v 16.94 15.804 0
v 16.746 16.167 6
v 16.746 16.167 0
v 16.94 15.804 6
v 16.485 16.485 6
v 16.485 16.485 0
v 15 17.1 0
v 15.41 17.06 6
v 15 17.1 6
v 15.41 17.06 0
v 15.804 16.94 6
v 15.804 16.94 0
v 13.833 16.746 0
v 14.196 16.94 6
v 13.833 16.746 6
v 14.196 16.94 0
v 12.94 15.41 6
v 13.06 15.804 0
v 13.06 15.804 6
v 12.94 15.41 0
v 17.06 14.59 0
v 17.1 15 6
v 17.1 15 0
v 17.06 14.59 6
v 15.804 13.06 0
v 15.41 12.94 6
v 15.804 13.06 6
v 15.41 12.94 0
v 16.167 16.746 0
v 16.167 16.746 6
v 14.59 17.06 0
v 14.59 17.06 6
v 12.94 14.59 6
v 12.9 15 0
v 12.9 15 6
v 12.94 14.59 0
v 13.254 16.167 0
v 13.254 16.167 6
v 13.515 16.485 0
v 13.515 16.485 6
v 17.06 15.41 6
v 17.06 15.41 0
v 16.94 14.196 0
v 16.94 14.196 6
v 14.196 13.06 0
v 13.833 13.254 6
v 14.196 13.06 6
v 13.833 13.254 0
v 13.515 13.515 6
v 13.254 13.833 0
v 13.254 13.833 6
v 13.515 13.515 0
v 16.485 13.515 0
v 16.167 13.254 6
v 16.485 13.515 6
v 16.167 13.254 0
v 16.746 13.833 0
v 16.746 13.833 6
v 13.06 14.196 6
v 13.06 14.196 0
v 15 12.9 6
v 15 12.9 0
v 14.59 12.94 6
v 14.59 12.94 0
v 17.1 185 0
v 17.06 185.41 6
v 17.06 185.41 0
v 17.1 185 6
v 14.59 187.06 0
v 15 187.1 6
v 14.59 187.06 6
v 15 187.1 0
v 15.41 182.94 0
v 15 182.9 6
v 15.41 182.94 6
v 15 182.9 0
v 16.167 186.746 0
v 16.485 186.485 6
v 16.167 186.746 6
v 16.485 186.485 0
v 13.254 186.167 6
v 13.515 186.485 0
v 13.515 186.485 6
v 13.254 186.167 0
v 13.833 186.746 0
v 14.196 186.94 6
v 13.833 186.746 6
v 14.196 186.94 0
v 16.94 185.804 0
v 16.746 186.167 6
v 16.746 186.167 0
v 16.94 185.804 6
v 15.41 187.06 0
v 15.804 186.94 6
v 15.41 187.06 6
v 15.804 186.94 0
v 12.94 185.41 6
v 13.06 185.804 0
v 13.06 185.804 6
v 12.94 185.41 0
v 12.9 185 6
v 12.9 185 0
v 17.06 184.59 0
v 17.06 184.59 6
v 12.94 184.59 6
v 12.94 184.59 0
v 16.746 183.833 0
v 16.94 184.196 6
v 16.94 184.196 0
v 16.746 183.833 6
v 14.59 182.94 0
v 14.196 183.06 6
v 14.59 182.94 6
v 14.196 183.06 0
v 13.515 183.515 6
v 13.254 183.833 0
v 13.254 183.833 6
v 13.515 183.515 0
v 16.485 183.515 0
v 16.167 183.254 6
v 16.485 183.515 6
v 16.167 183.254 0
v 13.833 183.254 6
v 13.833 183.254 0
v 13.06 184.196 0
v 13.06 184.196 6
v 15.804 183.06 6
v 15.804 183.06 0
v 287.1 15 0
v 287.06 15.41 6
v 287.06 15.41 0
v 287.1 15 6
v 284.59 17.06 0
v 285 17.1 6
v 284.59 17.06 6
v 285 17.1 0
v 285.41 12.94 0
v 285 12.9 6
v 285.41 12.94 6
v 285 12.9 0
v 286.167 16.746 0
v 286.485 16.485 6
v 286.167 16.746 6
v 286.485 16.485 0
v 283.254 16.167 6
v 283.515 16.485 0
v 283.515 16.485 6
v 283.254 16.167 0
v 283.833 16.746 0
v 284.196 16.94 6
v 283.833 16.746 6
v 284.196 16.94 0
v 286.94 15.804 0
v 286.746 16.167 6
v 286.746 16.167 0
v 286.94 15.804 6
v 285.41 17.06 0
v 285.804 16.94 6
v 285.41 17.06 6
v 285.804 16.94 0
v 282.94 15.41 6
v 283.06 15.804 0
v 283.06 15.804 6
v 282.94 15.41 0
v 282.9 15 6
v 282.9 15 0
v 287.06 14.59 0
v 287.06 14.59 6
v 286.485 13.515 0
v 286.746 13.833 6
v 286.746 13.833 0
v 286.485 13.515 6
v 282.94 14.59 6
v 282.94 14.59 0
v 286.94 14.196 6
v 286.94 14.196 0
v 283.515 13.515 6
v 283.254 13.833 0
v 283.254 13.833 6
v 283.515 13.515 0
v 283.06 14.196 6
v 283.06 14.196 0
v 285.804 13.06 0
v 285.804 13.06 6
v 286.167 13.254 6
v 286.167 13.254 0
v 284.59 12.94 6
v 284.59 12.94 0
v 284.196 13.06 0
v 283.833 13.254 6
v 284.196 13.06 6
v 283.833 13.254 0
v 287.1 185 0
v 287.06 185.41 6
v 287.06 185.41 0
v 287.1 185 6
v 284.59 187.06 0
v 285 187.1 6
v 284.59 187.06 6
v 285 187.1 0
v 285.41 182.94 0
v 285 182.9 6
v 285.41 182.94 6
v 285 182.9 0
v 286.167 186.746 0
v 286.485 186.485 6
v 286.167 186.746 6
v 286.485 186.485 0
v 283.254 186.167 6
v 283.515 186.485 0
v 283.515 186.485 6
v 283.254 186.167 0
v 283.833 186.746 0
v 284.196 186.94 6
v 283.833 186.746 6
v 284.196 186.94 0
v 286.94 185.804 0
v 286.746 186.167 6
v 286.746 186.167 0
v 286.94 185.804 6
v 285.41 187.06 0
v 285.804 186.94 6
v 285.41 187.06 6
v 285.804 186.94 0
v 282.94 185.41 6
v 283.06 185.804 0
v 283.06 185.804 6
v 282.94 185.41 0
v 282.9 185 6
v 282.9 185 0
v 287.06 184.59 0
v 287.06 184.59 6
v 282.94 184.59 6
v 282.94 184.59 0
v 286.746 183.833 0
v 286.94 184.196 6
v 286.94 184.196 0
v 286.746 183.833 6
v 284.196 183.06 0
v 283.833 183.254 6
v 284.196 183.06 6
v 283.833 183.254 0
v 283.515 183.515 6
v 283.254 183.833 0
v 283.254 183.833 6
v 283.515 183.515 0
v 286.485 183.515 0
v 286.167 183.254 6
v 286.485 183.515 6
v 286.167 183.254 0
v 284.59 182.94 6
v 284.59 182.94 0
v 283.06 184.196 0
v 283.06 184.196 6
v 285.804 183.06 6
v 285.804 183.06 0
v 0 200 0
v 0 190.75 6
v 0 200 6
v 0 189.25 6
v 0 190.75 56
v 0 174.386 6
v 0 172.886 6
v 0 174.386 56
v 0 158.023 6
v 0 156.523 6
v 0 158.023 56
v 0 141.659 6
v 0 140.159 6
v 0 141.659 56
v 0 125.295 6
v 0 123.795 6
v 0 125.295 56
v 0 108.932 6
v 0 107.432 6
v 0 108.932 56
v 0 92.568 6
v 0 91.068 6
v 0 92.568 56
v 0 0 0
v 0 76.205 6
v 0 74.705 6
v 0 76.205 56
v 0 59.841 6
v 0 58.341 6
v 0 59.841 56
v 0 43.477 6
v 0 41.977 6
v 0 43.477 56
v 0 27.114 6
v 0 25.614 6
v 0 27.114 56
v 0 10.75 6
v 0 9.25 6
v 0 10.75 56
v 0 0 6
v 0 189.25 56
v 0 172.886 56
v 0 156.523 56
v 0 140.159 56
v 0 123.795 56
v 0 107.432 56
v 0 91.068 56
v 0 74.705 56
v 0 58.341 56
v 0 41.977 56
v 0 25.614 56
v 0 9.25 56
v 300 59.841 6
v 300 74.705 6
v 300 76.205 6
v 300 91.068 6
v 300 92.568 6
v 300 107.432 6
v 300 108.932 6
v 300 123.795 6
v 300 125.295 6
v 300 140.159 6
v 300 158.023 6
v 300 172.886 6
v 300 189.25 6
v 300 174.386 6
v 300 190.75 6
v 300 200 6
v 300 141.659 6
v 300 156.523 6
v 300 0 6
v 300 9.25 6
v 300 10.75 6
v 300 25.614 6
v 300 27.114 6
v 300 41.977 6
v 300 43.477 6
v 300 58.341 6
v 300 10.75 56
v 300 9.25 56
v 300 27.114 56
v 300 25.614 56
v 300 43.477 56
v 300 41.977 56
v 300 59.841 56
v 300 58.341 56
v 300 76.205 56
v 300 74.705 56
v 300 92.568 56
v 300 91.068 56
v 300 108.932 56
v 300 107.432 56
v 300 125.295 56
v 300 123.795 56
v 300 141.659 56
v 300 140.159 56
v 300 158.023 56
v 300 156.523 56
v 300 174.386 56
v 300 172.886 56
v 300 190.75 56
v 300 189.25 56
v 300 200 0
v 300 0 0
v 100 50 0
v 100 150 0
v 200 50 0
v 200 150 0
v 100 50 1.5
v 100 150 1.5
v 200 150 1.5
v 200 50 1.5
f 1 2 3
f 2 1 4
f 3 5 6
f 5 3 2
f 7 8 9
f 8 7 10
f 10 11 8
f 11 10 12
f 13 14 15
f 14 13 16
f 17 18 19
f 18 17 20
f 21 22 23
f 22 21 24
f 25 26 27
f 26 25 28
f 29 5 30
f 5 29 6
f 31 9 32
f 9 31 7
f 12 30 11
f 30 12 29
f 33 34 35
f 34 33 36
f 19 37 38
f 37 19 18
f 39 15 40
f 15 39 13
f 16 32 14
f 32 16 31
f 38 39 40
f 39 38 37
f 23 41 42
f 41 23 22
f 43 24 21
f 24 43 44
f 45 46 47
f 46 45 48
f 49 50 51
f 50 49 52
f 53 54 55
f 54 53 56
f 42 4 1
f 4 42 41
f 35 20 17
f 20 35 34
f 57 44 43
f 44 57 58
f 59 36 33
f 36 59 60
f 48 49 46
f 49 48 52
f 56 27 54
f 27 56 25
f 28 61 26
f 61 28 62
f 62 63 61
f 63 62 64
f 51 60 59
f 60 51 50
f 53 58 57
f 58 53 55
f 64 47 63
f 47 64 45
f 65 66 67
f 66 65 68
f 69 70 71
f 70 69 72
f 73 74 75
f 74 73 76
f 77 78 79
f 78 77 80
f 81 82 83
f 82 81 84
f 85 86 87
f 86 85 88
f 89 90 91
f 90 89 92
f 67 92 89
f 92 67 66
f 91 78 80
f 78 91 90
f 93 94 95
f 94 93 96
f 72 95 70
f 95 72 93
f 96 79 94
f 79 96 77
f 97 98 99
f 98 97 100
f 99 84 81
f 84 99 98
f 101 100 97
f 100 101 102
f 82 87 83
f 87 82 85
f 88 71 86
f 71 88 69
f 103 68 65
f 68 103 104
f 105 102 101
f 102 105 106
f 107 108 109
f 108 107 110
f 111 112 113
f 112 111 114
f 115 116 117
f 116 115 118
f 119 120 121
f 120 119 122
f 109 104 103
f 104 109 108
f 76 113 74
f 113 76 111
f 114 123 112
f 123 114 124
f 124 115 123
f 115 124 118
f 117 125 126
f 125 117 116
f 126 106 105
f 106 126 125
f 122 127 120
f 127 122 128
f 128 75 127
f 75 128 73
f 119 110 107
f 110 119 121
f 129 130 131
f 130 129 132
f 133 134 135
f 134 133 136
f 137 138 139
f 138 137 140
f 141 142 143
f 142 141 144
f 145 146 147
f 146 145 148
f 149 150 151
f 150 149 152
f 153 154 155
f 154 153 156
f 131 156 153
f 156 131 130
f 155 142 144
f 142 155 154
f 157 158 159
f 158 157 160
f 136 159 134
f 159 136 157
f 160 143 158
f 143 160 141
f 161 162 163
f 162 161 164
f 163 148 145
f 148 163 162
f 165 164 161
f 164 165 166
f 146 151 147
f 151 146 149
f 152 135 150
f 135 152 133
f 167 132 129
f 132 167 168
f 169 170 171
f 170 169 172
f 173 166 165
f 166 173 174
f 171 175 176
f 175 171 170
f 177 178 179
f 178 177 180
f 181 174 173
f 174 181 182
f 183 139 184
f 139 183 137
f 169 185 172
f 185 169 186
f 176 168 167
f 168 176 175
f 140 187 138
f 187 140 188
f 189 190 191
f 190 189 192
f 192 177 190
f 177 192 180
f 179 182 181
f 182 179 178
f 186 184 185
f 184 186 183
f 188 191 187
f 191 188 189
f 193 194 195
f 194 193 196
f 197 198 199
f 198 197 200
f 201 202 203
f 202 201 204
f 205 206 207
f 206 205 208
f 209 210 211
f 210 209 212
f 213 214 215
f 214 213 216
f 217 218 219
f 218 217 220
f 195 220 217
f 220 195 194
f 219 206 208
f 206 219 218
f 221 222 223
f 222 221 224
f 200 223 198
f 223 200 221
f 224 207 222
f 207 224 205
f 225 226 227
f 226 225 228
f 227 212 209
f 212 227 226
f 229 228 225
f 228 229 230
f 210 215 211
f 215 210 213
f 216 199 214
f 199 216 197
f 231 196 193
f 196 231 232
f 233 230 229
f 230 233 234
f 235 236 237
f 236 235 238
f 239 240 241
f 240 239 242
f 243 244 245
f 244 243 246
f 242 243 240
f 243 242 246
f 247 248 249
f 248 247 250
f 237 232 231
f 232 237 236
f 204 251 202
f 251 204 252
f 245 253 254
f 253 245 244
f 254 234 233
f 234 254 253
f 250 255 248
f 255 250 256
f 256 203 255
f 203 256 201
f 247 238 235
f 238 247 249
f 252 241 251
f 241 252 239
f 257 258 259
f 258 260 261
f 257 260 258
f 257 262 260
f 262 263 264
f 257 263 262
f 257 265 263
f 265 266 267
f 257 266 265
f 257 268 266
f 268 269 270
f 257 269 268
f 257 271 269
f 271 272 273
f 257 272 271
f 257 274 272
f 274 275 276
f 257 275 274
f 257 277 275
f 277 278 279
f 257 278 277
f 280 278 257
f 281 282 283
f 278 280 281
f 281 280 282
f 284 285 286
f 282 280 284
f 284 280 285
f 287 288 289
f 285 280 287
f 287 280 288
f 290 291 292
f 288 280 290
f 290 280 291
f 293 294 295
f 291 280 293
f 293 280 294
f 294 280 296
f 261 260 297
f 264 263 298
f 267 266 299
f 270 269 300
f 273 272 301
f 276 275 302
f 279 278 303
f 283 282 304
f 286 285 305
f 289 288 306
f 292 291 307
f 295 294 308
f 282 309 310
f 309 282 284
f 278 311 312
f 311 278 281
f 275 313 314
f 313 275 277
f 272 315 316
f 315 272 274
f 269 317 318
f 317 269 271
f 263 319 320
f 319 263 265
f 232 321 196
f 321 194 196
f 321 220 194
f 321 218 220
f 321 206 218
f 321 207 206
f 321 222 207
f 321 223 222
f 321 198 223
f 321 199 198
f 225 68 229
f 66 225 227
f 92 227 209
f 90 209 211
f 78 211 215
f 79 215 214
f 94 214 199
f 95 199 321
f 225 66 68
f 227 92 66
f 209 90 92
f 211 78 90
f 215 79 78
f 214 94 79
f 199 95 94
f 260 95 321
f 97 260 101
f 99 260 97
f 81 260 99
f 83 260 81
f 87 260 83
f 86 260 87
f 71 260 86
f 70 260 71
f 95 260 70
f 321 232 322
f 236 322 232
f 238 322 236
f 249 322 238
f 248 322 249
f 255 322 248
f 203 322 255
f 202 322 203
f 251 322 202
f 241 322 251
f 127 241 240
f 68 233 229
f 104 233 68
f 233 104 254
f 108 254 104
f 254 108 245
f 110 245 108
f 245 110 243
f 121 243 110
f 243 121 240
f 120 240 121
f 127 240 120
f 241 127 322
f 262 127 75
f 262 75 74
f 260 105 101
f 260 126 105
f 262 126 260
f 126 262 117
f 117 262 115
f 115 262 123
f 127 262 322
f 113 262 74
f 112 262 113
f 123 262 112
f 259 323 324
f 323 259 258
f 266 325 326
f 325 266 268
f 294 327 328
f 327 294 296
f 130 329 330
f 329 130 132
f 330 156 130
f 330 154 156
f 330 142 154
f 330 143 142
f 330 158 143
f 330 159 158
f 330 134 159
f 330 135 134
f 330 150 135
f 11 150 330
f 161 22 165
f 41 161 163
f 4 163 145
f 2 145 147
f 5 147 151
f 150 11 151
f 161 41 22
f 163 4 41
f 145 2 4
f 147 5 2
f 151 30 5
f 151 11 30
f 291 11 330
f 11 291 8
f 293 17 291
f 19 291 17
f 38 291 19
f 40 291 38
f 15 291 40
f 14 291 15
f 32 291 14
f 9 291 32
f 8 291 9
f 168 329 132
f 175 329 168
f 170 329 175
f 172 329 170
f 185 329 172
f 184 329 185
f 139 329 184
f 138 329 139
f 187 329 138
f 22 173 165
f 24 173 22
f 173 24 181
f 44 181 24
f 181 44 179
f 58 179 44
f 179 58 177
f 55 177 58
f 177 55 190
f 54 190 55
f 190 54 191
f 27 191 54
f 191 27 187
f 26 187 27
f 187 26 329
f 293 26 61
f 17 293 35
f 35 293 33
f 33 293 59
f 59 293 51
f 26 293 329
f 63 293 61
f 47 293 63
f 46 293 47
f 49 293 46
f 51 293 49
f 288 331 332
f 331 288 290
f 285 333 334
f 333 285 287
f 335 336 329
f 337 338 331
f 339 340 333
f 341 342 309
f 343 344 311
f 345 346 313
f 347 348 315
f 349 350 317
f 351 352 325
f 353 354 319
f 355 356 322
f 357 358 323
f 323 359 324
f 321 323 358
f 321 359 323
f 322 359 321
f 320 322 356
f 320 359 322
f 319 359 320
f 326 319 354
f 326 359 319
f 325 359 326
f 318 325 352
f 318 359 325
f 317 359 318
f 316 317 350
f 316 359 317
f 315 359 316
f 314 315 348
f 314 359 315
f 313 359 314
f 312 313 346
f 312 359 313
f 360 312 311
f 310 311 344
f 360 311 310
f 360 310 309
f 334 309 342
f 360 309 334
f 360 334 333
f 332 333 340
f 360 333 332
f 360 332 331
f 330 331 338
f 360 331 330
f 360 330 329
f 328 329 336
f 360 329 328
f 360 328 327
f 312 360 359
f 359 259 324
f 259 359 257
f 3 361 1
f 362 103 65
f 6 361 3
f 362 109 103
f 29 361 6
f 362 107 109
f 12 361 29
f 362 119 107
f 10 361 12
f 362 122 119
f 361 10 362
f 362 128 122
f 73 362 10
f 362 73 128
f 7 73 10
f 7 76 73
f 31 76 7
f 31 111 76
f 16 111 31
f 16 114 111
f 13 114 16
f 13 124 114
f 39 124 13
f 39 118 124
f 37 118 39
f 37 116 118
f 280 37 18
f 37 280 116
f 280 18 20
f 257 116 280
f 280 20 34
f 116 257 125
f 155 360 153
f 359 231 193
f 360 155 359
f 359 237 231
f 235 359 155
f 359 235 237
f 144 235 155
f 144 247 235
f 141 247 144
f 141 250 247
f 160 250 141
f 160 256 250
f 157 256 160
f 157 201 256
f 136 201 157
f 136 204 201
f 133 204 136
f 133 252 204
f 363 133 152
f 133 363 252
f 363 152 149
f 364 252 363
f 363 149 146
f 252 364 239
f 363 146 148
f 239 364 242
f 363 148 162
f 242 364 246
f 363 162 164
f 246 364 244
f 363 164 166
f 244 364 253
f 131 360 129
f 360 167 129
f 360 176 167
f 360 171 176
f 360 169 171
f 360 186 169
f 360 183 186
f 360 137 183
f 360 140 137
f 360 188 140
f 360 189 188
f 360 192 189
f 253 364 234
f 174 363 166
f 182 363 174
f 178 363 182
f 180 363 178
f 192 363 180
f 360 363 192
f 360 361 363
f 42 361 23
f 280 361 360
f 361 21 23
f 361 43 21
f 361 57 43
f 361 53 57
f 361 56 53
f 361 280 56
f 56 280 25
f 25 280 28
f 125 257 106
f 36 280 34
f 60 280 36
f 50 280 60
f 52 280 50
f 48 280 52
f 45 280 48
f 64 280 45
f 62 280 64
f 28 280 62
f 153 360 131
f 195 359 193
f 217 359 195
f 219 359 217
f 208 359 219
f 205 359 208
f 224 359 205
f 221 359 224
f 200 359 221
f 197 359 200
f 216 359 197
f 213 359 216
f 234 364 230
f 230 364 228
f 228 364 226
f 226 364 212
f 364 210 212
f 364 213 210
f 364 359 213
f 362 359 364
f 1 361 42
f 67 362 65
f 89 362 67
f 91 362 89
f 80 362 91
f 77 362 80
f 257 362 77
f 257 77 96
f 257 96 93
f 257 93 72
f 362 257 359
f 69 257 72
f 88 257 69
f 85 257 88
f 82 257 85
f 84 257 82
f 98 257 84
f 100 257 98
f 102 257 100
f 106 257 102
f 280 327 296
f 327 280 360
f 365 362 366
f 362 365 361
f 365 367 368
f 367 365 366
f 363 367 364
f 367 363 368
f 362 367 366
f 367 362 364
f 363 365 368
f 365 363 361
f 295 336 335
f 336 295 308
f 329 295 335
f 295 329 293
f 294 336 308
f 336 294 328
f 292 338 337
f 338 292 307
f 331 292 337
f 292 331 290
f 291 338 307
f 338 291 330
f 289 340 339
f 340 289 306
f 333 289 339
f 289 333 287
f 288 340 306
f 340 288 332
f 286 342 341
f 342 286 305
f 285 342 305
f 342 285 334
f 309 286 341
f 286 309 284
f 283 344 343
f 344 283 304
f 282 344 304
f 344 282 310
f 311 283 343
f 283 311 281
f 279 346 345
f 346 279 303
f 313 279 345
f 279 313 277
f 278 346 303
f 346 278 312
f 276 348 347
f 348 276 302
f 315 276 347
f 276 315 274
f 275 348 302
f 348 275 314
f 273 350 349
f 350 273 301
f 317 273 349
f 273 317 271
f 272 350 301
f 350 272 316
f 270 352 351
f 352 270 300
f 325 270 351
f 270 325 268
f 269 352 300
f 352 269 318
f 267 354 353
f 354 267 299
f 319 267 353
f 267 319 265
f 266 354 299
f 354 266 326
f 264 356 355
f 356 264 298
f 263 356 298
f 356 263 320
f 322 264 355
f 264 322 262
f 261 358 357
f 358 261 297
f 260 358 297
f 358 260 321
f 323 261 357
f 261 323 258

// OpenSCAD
// Wing Data Center — Tabletop Open-Cooling Prototype
// Units: millimeters
// Build: aluminum base + plate fins (sheet or extrusion)
// Compare against a flat plate of the same footprint.

/* ===================== PARAMETERS ===================== */
base_l = 300;        // length along intended wind direction
base_w = 200;        // width
base_t = 6;          // base plate thickness

fin_count = 12;      // number of fins
fin_h = 50;          // fin height above base top
fin_t = 1.5;         // fin thickness
fin_tip_gap = 2;     // small clearance if using a top rail (optional)

// Heater pocket (underside) — for a 100x100 silicone heater pad
heater_size = 100;
heater_recess = 1.5;

// Mount holes (M4)
hole_d = 4.2;
hole_margin = 15;

/* ===================== DERIVED ===================== */
fin_span = base_w - 20;                 // fins inset 10 mm from each side
channel_pitch = fin_span / (fin_count - 1);
fin_start_y = (base_w - fin_span) / 2;

echo("Footprint mm:", base_l, "x", base_w);
echo("Fin pitch (center-center) mm:", channel_pitch);
echo("Approx exposed fin area m2:",
     (fin_count * 2 * (base_l/1000) * (fin_h/1000)) +
     ((base_l/1000)*(base_w/1000)));

module base_plate() {
    difference() {
        cube([base_l, base_w, base_t], center = false);

        // heater recess on underside (z=0 is bottom)
        translate([
            (base_l - heater_size) / 2,
            (base_w - heater_size) / 2,
            0
        ])
            cube([heater_size, heater_size, heater_recess], center = false);

        // corner mount holes
        for (x = [hole_margin, base_l - hole_margin])
            for (y = [hole_margin, base_w - hole_margin])
                translate([x, y, -1])
                    cylinder(h = base_t + 2, d = hole_d, $fn = 32);
    }
}

module fin(i) {
    y = fin_start_y + i * channel_pitch - fin_t / 2;
    translate([0, y, base_t])
        cube([base_l, fin_t, fin_h], center = false);
}

module wing_assembly() {
    color("Silver") base_plate();
    color("Gainsboro")
        for (i = [0 : fin_count - 1])
            fin(i);
}

module flat_baseline() {
    // Same footprint, no fins — for A/B thermal test
    color("Gray") base_plate();
}

// Default: show the wing module
wing_assembly();

// Uncomment to export/view flat baseline instead:
// flat_baseline();
